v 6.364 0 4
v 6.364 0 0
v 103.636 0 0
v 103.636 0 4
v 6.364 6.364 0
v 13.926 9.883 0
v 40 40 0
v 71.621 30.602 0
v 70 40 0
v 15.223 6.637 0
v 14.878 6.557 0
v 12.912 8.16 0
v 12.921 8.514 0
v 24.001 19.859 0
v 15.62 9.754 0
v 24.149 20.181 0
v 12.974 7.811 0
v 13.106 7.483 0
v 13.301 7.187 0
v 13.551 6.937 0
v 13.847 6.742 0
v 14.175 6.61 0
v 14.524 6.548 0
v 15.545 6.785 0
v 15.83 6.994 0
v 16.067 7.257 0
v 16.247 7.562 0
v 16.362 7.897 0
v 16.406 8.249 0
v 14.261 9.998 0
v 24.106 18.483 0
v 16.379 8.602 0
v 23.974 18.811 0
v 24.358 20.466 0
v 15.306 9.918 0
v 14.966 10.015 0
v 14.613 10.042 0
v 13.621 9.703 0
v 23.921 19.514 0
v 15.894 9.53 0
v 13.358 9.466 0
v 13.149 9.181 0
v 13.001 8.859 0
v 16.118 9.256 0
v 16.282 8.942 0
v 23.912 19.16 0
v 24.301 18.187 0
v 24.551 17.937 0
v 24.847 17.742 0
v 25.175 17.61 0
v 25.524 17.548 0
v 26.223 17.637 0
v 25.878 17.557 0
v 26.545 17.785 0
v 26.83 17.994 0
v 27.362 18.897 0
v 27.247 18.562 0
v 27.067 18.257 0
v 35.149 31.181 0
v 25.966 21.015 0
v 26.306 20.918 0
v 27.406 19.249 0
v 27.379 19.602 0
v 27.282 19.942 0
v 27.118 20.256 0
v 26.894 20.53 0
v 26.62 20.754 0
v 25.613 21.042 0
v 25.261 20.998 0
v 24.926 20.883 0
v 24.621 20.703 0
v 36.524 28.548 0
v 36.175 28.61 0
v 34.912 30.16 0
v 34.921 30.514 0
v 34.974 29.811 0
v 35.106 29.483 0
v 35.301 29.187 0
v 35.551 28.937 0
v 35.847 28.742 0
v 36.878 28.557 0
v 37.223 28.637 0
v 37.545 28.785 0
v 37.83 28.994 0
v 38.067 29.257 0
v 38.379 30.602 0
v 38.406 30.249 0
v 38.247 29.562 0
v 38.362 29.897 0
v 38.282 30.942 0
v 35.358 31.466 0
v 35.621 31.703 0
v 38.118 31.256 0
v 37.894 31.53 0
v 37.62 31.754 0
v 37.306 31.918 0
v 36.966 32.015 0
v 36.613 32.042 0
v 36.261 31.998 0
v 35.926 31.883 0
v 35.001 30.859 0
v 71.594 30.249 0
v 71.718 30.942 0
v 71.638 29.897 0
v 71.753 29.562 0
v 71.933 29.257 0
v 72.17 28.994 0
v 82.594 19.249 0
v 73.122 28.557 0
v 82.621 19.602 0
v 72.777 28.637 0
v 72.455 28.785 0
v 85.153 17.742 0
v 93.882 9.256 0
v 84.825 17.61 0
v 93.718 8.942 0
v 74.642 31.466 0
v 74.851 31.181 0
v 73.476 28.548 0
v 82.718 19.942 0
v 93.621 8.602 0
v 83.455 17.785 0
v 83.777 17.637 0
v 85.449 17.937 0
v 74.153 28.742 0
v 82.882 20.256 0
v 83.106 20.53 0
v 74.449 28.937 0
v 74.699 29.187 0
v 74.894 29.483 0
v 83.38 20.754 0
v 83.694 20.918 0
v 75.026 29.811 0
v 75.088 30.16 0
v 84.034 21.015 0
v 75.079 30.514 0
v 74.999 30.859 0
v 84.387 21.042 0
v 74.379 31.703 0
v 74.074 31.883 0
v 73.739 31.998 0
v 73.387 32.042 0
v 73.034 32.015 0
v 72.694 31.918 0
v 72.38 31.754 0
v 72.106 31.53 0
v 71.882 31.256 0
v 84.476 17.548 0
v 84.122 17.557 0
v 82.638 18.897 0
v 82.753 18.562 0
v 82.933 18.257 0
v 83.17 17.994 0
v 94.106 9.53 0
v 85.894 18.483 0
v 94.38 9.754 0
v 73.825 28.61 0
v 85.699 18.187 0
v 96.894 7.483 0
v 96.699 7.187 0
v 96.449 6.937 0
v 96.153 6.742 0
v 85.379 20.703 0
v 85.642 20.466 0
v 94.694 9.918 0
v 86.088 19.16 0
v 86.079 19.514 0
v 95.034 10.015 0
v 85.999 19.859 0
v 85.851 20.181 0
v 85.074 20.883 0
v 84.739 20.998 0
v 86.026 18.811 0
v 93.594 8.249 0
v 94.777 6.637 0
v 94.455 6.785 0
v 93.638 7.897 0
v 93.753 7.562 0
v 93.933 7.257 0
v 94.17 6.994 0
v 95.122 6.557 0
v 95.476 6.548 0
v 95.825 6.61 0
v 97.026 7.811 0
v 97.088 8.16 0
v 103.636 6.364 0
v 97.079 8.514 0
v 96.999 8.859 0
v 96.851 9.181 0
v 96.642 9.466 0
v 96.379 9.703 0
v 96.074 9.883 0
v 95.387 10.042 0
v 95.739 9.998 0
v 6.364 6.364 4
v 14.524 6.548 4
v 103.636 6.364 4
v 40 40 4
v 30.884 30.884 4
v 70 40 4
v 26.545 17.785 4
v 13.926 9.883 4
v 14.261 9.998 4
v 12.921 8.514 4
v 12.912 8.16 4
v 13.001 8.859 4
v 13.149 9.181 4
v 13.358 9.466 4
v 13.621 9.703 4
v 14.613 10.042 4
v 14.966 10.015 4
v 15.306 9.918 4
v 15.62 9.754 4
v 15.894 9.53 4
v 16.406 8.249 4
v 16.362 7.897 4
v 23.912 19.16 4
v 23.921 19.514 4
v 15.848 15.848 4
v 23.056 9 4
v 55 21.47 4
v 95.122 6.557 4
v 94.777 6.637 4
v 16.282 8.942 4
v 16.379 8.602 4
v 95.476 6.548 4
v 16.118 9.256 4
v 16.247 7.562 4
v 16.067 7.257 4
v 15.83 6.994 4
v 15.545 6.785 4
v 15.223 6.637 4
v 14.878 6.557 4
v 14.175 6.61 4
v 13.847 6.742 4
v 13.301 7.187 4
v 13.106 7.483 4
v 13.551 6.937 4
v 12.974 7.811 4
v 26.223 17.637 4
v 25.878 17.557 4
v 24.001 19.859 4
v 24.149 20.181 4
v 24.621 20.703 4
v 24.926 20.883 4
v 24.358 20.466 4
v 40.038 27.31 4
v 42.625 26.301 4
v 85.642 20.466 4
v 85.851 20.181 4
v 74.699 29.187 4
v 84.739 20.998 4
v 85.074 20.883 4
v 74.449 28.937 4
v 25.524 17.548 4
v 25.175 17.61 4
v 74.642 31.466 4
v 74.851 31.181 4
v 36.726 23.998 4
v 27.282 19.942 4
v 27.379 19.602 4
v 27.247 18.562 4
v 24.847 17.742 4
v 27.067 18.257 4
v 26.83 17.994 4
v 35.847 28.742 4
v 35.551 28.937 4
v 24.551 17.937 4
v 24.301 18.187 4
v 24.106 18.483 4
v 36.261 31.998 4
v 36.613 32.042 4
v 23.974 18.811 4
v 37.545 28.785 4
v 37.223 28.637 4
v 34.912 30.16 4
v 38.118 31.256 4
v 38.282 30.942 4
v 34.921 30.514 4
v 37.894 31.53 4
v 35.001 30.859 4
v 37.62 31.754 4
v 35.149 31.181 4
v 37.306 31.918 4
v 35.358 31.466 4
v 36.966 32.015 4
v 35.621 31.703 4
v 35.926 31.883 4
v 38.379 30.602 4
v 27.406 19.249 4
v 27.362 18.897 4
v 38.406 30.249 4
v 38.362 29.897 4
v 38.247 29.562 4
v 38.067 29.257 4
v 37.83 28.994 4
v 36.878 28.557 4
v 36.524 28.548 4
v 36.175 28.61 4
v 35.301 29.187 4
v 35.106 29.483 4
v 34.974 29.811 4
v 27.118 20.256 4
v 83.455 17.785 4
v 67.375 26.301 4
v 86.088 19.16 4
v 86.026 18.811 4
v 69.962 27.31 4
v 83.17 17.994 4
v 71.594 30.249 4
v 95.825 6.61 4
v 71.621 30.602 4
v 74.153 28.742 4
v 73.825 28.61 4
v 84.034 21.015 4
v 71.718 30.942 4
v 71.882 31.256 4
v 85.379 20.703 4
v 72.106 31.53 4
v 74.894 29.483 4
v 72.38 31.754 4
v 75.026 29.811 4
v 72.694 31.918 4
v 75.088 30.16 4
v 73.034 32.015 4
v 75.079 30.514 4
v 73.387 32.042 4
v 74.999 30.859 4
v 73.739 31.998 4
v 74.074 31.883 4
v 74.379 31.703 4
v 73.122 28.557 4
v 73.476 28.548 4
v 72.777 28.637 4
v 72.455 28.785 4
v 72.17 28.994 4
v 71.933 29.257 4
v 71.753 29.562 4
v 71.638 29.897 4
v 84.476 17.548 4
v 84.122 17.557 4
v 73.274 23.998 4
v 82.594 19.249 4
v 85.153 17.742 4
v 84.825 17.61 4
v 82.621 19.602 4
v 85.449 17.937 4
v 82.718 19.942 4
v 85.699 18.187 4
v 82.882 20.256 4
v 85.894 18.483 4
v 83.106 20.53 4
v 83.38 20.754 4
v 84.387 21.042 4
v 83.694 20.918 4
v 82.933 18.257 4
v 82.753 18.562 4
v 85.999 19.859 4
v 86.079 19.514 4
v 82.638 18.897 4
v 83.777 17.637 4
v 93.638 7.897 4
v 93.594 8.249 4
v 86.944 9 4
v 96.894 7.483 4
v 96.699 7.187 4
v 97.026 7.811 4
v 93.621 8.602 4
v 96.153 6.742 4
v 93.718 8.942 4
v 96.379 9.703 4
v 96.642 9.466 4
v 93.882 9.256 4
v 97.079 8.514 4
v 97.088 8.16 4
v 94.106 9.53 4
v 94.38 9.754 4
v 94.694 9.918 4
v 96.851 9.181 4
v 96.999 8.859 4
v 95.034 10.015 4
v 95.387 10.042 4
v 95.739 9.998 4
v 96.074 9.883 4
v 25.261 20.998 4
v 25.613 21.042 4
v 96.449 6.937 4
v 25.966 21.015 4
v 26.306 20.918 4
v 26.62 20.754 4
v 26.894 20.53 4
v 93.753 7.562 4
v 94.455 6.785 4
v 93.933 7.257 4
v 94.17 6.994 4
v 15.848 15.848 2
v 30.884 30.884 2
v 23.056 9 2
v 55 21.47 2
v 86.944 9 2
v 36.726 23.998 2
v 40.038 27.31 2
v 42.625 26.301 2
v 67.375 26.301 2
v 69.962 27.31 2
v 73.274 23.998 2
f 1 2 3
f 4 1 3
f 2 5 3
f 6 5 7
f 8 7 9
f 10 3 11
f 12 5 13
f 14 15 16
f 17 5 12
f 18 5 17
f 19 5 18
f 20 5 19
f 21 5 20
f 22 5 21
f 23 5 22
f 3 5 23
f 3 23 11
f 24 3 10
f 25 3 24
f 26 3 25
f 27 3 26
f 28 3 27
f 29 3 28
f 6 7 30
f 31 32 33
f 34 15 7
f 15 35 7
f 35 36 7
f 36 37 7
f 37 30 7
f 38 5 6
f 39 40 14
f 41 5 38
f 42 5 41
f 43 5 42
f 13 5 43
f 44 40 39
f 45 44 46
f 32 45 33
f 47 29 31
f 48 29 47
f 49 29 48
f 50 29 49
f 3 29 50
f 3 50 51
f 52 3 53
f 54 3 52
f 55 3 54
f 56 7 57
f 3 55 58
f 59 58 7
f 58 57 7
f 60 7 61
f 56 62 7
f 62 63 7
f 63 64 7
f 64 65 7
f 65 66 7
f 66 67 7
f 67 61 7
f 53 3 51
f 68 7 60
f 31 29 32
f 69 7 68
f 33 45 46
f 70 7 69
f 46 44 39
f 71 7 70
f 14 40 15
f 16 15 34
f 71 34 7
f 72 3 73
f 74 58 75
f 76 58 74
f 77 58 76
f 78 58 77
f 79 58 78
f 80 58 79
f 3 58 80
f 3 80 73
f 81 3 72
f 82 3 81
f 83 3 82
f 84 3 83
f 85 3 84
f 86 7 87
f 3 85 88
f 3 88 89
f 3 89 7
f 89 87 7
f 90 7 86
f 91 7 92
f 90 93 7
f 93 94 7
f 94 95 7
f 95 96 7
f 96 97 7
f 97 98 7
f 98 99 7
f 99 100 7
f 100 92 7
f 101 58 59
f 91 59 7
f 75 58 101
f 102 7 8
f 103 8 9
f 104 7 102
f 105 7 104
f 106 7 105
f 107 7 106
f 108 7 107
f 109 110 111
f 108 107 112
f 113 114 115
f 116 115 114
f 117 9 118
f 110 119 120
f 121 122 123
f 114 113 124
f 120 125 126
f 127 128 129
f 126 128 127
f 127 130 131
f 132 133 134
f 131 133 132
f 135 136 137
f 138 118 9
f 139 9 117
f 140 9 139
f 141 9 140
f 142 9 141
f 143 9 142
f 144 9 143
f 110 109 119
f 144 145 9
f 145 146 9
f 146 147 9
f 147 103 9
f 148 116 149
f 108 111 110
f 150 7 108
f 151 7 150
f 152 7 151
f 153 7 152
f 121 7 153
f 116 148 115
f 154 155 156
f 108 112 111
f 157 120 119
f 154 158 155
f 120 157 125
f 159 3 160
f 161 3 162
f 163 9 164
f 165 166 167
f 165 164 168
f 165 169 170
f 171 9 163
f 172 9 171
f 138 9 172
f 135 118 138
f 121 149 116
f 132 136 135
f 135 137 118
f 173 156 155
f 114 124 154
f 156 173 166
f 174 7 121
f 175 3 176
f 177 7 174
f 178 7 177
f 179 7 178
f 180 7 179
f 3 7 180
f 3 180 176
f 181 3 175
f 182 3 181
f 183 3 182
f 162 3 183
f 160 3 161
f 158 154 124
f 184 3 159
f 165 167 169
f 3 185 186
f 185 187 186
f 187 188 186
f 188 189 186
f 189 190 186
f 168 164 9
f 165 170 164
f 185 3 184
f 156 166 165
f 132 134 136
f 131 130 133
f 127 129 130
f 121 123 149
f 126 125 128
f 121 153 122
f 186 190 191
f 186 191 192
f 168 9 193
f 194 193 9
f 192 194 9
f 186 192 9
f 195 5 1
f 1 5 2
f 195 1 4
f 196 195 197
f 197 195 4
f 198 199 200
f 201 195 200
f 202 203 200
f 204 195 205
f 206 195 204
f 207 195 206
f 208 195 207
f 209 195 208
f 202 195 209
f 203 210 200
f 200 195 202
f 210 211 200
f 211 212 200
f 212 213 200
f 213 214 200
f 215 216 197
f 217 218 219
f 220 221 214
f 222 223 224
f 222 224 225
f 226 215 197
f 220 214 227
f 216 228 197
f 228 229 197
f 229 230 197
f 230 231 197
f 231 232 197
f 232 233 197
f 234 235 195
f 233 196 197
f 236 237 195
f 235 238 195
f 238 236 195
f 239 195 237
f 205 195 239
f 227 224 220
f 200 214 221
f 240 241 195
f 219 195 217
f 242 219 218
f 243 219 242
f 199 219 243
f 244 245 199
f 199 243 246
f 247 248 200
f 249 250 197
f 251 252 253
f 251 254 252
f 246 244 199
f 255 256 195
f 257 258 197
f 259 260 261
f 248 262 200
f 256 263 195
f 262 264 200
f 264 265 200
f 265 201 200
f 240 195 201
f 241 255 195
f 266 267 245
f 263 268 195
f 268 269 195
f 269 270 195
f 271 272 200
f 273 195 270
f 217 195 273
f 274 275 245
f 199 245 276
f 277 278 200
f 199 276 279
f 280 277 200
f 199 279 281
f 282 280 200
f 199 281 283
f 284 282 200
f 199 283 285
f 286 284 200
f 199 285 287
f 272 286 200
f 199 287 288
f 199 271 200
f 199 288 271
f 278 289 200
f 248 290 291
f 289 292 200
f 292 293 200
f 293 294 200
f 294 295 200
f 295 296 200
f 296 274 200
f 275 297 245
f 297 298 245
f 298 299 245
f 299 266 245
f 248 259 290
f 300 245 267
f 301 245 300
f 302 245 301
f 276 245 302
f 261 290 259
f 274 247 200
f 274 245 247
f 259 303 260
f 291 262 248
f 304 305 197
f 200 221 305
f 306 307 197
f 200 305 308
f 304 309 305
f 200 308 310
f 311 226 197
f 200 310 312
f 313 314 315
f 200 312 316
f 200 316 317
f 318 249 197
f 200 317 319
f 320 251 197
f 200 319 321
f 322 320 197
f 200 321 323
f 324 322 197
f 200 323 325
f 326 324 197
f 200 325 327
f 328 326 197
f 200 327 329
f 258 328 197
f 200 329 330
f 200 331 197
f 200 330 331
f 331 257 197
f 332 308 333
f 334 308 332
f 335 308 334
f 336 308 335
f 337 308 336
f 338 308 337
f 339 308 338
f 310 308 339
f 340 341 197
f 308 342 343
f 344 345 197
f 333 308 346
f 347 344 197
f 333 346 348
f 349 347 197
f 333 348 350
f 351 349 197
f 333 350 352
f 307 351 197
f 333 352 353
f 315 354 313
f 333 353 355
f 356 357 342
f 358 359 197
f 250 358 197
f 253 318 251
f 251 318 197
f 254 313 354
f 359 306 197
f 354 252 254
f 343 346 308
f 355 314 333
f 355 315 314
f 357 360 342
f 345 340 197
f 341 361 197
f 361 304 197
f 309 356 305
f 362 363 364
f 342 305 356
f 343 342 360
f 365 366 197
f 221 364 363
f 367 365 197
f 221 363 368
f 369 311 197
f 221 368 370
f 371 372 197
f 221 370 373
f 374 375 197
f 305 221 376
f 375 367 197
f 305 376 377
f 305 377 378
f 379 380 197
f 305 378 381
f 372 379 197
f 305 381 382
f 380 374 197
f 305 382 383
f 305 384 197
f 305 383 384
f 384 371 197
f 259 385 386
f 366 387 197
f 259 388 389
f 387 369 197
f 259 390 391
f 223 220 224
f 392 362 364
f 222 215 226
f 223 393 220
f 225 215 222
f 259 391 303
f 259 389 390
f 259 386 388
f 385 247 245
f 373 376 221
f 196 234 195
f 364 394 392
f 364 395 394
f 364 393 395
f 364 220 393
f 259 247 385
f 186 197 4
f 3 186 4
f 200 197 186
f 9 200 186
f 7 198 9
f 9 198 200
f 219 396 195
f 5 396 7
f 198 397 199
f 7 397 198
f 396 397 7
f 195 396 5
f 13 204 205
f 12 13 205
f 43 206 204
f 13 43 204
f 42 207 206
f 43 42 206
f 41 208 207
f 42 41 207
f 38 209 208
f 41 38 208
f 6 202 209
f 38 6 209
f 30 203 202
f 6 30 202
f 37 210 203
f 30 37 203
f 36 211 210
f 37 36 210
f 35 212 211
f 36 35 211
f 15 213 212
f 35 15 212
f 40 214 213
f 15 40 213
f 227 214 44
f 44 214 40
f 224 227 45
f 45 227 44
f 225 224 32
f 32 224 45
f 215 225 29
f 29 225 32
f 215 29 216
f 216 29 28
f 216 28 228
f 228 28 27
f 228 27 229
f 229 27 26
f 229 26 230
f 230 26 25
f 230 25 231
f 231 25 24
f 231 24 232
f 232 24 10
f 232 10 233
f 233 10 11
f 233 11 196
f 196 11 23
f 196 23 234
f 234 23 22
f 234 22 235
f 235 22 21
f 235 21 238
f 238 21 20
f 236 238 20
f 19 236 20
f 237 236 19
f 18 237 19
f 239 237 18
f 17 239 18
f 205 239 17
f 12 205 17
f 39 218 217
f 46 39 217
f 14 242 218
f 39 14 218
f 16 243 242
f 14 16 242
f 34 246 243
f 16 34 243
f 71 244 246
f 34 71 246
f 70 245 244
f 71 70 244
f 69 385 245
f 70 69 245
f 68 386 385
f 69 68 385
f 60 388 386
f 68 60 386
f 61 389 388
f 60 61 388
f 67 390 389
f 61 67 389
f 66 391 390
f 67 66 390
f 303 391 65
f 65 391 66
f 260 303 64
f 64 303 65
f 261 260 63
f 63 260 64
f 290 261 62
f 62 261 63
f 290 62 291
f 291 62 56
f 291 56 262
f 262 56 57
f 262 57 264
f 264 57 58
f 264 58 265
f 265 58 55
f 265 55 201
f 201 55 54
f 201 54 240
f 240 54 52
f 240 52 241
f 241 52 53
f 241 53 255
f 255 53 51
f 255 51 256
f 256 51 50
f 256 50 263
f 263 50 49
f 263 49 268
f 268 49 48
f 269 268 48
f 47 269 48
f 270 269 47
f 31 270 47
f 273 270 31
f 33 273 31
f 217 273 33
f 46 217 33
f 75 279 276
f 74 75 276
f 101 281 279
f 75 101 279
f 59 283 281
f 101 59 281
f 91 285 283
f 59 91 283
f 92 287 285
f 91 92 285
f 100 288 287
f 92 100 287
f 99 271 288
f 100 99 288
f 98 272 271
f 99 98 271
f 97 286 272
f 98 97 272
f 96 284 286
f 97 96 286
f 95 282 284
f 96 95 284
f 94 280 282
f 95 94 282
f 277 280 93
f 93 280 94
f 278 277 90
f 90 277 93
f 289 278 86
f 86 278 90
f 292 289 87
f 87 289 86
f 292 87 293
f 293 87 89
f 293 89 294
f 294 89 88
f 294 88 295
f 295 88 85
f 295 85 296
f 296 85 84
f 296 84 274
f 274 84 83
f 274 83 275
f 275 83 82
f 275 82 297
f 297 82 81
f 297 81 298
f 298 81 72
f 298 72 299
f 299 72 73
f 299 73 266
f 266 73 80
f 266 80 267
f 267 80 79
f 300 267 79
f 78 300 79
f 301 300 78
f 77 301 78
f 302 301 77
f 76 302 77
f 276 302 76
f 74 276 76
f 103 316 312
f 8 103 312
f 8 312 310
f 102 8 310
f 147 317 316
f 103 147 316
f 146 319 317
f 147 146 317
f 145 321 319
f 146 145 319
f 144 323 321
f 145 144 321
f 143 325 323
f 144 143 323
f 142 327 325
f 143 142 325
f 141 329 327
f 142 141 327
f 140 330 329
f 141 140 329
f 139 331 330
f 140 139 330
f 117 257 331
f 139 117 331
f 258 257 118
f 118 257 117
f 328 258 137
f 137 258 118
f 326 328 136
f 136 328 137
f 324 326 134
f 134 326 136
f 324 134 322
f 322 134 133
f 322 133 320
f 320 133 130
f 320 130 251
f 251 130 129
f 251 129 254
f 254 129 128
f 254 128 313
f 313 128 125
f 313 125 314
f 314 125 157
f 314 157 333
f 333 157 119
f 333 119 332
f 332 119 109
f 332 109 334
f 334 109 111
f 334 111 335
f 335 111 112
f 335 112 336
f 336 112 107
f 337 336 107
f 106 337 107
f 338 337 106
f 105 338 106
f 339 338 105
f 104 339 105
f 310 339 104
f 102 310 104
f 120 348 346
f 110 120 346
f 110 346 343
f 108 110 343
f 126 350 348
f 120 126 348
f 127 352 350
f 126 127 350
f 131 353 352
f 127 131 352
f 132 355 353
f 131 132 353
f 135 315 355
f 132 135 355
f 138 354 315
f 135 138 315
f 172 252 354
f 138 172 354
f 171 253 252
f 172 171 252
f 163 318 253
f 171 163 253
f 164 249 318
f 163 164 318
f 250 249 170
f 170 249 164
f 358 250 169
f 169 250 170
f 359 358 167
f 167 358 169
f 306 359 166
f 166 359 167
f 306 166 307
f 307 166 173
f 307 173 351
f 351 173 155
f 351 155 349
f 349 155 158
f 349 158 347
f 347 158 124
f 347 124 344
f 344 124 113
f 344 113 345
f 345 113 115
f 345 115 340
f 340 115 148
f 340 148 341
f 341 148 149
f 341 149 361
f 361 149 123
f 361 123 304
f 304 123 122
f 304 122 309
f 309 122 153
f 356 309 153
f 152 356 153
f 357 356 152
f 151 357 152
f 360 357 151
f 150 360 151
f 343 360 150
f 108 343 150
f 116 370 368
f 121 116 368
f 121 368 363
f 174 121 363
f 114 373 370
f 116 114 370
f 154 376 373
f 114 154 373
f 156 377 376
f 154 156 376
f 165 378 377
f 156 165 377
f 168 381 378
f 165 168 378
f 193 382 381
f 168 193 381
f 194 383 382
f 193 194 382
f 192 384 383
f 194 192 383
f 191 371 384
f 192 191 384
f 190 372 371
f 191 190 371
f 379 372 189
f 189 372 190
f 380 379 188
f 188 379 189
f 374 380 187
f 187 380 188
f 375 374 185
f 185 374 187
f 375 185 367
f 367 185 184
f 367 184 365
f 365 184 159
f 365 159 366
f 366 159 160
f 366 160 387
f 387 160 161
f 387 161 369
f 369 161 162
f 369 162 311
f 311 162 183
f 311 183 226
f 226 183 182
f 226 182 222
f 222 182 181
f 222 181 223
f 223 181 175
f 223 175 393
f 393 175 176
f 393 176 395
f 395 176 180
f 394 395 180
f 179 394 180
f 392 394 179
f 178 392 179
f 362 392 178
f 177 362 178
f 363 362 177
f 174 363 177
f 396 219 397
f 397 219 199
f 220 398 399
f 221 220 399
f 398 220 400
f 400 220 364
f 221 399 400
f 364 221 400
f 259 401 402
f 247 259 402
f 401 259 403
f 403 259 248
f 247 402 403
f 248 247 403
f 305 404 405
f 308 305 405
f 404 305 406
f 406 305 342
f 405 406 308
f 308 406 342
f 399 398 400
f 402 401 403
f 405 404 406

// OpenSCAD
// file: config.scad
// https://docs.google.com/viewer?a=v&pid=explorer&chrome=true&srcid=0B8AGtzEPL1XpNGIwMjM0NzQtZmMyMS00YmU2LTkwMjItNTkzNzA0MDJkZTAx&hl=en_US&authkey=CMjZjW0

$fn = 31;

//Delta config constants
upperlinkage = 63; 
lowerlinkage = 126;
baseradius = 35;
endeffector = 50; //radius of the end effector
fourbarspacing = 70;

//hardware
screwdia = 3.5; //m3
screwheaddia = 5.6; //m3
screwheadheight = 3.2; //m3
nutapothem = 5.7; //m3
nutheight = 2.5; //m3 lock nut

//motors 
holespacing = 17*2.54*sin(45); //nema 17
shaftlength = 22;
shaftdia = 5;
bodylength = 48;
bodywidth = 42; //could also be diameter of a round servo
motorwall = 2.75;
motorcenterdia = 25;

//Structure pieces
structbase = 110;  //180
structheight = 40;  //70
structholes = 3; //how many holes are on each side. 
structthickness = 2;
structbracewidth = 9;

//z axis plates
smoothroddia = 8;
platelength = 110;
platethickness = 3;

//cups
cupwall = 2.7;

//end effector
extruderspacing = 40;
extrudermountholes = 10;

//base
basemotorwall = 2.7;

//upper linkage
upperlinkthick = nutapothem/cos(30);
upperlinkwidth = 20;

//coupling
leadscrewdia = 8;
couplingwall = 5;
couplingheight = 30;

//general shit
nutwall = nutapothem/4;
// main file
/*
  Deltafab - A Fully Parametric and Printable RepRap
    Copyright (C) 2011  Steve Kelly

    This program is free software: you can redistribute it and/or modify
    it under the terms of the GNU General Public License as published by
    the Free Software Foundation, either version 3 of the License, or
    (at your option) any later version.

    This program is distributed in the hope that it will be useful,
    but WITHOUT ANY WARRANTY; without even the implied warranty of
    MERCHANTABILITY or FITNESS FOR A PARTICULAR PURPOSE.  See the
    GNU General Public License for more details.

    You should have received a copy of the GNU General Public License
    along with this program.  If not, see <http://www.gnu.org/licenses/>.
*/

include <config.scad>;

module structure(){


	//Breakout and distributed vars
	
difference(){

	union(){
		cube([structbase,structheight,structthickness]);
		cube([structbase,structbracewidth,structthickness*2]);
		translate([0,structheight-structbracewidth,0])cube([structbase,structbracewidth,structthickness*2]);
		translate([structbracewidth/sin(45),0,0])rotate([0,0,45])cube([structheight/sin(45)-structbracewidth/sin(45),structbracewidth,structthickness*2]);
		translate([structbase-structbracewidth/sin(45)/2,structbracewidth/sin(45)/2,0])rotate([0,0,135])cube([structheight/sin(45)-structbracewidth/sin(45),structbracewidth,structthickness*2]);
		translate([0,0,0])rotate([0,0,asin(structheight/structbase)])cube([sqrt(pow(structbase-structheight/sin(45)/2,2)+pow(structheight,2)),structbracewidth,structthickness*2]);
		translate([structbase,0,0])rotate([0,0,180-asin(structheight/structbase)])translate([0,-structbracewidth])cube([sqrt(pow(structbase-structheight/sin(45)/2,2)+pow(structheight,2)),structbracewidth,structthickness*2]);
	}

	translate([0,-1,-1])cube([structbracewidth/2/sin(45),structbracewidth/2/sin(45)+2,structthickness*2+2]);
	translate([structbase-(structbracewidth/2/sin(45)),-1,-1])cube([structbracewidth/2/sin(45),structbracewidth/2/sin(45)+2,structthickness*2+2]);

	translate([0,0,-1])rotate([0,0,45])cube([structheight/sin(45),structheight/sin(45)/2,structthickness*2+2]);
	translate([structbase,0,-1])rotate([0,0,45])cube([structheight/sin(45)/2,structheight/sin(45),structthickness*2+2]);

	for(i=[0 : ((structheight-structbracewidth*2)/sin(45))/(structholes-1) : ((structheight-structbracewidth*2)/sin(45))]){
		rotate([0,0,45])translate([structbracewidth/sin(45)+screwdia+i,-structbracewidth/2,-1])cylinder(r=screwdia/2,h=structthickness*2+2);
	}

	for(i=[0 : ((structheight-structbracewidth*2)/sin(45))/(structholes-1) : ((structheight-structbracewidth*2)/sin(45))]){
		translate([structbase,0,0])rotate([0,0,135])translate([structbracewidth/sin(45)+screwdia+i,structbracewidth/2,-1])cylinder(r=screwdia/2,h=structthickness*2+2);
	}

}

}
structure();
